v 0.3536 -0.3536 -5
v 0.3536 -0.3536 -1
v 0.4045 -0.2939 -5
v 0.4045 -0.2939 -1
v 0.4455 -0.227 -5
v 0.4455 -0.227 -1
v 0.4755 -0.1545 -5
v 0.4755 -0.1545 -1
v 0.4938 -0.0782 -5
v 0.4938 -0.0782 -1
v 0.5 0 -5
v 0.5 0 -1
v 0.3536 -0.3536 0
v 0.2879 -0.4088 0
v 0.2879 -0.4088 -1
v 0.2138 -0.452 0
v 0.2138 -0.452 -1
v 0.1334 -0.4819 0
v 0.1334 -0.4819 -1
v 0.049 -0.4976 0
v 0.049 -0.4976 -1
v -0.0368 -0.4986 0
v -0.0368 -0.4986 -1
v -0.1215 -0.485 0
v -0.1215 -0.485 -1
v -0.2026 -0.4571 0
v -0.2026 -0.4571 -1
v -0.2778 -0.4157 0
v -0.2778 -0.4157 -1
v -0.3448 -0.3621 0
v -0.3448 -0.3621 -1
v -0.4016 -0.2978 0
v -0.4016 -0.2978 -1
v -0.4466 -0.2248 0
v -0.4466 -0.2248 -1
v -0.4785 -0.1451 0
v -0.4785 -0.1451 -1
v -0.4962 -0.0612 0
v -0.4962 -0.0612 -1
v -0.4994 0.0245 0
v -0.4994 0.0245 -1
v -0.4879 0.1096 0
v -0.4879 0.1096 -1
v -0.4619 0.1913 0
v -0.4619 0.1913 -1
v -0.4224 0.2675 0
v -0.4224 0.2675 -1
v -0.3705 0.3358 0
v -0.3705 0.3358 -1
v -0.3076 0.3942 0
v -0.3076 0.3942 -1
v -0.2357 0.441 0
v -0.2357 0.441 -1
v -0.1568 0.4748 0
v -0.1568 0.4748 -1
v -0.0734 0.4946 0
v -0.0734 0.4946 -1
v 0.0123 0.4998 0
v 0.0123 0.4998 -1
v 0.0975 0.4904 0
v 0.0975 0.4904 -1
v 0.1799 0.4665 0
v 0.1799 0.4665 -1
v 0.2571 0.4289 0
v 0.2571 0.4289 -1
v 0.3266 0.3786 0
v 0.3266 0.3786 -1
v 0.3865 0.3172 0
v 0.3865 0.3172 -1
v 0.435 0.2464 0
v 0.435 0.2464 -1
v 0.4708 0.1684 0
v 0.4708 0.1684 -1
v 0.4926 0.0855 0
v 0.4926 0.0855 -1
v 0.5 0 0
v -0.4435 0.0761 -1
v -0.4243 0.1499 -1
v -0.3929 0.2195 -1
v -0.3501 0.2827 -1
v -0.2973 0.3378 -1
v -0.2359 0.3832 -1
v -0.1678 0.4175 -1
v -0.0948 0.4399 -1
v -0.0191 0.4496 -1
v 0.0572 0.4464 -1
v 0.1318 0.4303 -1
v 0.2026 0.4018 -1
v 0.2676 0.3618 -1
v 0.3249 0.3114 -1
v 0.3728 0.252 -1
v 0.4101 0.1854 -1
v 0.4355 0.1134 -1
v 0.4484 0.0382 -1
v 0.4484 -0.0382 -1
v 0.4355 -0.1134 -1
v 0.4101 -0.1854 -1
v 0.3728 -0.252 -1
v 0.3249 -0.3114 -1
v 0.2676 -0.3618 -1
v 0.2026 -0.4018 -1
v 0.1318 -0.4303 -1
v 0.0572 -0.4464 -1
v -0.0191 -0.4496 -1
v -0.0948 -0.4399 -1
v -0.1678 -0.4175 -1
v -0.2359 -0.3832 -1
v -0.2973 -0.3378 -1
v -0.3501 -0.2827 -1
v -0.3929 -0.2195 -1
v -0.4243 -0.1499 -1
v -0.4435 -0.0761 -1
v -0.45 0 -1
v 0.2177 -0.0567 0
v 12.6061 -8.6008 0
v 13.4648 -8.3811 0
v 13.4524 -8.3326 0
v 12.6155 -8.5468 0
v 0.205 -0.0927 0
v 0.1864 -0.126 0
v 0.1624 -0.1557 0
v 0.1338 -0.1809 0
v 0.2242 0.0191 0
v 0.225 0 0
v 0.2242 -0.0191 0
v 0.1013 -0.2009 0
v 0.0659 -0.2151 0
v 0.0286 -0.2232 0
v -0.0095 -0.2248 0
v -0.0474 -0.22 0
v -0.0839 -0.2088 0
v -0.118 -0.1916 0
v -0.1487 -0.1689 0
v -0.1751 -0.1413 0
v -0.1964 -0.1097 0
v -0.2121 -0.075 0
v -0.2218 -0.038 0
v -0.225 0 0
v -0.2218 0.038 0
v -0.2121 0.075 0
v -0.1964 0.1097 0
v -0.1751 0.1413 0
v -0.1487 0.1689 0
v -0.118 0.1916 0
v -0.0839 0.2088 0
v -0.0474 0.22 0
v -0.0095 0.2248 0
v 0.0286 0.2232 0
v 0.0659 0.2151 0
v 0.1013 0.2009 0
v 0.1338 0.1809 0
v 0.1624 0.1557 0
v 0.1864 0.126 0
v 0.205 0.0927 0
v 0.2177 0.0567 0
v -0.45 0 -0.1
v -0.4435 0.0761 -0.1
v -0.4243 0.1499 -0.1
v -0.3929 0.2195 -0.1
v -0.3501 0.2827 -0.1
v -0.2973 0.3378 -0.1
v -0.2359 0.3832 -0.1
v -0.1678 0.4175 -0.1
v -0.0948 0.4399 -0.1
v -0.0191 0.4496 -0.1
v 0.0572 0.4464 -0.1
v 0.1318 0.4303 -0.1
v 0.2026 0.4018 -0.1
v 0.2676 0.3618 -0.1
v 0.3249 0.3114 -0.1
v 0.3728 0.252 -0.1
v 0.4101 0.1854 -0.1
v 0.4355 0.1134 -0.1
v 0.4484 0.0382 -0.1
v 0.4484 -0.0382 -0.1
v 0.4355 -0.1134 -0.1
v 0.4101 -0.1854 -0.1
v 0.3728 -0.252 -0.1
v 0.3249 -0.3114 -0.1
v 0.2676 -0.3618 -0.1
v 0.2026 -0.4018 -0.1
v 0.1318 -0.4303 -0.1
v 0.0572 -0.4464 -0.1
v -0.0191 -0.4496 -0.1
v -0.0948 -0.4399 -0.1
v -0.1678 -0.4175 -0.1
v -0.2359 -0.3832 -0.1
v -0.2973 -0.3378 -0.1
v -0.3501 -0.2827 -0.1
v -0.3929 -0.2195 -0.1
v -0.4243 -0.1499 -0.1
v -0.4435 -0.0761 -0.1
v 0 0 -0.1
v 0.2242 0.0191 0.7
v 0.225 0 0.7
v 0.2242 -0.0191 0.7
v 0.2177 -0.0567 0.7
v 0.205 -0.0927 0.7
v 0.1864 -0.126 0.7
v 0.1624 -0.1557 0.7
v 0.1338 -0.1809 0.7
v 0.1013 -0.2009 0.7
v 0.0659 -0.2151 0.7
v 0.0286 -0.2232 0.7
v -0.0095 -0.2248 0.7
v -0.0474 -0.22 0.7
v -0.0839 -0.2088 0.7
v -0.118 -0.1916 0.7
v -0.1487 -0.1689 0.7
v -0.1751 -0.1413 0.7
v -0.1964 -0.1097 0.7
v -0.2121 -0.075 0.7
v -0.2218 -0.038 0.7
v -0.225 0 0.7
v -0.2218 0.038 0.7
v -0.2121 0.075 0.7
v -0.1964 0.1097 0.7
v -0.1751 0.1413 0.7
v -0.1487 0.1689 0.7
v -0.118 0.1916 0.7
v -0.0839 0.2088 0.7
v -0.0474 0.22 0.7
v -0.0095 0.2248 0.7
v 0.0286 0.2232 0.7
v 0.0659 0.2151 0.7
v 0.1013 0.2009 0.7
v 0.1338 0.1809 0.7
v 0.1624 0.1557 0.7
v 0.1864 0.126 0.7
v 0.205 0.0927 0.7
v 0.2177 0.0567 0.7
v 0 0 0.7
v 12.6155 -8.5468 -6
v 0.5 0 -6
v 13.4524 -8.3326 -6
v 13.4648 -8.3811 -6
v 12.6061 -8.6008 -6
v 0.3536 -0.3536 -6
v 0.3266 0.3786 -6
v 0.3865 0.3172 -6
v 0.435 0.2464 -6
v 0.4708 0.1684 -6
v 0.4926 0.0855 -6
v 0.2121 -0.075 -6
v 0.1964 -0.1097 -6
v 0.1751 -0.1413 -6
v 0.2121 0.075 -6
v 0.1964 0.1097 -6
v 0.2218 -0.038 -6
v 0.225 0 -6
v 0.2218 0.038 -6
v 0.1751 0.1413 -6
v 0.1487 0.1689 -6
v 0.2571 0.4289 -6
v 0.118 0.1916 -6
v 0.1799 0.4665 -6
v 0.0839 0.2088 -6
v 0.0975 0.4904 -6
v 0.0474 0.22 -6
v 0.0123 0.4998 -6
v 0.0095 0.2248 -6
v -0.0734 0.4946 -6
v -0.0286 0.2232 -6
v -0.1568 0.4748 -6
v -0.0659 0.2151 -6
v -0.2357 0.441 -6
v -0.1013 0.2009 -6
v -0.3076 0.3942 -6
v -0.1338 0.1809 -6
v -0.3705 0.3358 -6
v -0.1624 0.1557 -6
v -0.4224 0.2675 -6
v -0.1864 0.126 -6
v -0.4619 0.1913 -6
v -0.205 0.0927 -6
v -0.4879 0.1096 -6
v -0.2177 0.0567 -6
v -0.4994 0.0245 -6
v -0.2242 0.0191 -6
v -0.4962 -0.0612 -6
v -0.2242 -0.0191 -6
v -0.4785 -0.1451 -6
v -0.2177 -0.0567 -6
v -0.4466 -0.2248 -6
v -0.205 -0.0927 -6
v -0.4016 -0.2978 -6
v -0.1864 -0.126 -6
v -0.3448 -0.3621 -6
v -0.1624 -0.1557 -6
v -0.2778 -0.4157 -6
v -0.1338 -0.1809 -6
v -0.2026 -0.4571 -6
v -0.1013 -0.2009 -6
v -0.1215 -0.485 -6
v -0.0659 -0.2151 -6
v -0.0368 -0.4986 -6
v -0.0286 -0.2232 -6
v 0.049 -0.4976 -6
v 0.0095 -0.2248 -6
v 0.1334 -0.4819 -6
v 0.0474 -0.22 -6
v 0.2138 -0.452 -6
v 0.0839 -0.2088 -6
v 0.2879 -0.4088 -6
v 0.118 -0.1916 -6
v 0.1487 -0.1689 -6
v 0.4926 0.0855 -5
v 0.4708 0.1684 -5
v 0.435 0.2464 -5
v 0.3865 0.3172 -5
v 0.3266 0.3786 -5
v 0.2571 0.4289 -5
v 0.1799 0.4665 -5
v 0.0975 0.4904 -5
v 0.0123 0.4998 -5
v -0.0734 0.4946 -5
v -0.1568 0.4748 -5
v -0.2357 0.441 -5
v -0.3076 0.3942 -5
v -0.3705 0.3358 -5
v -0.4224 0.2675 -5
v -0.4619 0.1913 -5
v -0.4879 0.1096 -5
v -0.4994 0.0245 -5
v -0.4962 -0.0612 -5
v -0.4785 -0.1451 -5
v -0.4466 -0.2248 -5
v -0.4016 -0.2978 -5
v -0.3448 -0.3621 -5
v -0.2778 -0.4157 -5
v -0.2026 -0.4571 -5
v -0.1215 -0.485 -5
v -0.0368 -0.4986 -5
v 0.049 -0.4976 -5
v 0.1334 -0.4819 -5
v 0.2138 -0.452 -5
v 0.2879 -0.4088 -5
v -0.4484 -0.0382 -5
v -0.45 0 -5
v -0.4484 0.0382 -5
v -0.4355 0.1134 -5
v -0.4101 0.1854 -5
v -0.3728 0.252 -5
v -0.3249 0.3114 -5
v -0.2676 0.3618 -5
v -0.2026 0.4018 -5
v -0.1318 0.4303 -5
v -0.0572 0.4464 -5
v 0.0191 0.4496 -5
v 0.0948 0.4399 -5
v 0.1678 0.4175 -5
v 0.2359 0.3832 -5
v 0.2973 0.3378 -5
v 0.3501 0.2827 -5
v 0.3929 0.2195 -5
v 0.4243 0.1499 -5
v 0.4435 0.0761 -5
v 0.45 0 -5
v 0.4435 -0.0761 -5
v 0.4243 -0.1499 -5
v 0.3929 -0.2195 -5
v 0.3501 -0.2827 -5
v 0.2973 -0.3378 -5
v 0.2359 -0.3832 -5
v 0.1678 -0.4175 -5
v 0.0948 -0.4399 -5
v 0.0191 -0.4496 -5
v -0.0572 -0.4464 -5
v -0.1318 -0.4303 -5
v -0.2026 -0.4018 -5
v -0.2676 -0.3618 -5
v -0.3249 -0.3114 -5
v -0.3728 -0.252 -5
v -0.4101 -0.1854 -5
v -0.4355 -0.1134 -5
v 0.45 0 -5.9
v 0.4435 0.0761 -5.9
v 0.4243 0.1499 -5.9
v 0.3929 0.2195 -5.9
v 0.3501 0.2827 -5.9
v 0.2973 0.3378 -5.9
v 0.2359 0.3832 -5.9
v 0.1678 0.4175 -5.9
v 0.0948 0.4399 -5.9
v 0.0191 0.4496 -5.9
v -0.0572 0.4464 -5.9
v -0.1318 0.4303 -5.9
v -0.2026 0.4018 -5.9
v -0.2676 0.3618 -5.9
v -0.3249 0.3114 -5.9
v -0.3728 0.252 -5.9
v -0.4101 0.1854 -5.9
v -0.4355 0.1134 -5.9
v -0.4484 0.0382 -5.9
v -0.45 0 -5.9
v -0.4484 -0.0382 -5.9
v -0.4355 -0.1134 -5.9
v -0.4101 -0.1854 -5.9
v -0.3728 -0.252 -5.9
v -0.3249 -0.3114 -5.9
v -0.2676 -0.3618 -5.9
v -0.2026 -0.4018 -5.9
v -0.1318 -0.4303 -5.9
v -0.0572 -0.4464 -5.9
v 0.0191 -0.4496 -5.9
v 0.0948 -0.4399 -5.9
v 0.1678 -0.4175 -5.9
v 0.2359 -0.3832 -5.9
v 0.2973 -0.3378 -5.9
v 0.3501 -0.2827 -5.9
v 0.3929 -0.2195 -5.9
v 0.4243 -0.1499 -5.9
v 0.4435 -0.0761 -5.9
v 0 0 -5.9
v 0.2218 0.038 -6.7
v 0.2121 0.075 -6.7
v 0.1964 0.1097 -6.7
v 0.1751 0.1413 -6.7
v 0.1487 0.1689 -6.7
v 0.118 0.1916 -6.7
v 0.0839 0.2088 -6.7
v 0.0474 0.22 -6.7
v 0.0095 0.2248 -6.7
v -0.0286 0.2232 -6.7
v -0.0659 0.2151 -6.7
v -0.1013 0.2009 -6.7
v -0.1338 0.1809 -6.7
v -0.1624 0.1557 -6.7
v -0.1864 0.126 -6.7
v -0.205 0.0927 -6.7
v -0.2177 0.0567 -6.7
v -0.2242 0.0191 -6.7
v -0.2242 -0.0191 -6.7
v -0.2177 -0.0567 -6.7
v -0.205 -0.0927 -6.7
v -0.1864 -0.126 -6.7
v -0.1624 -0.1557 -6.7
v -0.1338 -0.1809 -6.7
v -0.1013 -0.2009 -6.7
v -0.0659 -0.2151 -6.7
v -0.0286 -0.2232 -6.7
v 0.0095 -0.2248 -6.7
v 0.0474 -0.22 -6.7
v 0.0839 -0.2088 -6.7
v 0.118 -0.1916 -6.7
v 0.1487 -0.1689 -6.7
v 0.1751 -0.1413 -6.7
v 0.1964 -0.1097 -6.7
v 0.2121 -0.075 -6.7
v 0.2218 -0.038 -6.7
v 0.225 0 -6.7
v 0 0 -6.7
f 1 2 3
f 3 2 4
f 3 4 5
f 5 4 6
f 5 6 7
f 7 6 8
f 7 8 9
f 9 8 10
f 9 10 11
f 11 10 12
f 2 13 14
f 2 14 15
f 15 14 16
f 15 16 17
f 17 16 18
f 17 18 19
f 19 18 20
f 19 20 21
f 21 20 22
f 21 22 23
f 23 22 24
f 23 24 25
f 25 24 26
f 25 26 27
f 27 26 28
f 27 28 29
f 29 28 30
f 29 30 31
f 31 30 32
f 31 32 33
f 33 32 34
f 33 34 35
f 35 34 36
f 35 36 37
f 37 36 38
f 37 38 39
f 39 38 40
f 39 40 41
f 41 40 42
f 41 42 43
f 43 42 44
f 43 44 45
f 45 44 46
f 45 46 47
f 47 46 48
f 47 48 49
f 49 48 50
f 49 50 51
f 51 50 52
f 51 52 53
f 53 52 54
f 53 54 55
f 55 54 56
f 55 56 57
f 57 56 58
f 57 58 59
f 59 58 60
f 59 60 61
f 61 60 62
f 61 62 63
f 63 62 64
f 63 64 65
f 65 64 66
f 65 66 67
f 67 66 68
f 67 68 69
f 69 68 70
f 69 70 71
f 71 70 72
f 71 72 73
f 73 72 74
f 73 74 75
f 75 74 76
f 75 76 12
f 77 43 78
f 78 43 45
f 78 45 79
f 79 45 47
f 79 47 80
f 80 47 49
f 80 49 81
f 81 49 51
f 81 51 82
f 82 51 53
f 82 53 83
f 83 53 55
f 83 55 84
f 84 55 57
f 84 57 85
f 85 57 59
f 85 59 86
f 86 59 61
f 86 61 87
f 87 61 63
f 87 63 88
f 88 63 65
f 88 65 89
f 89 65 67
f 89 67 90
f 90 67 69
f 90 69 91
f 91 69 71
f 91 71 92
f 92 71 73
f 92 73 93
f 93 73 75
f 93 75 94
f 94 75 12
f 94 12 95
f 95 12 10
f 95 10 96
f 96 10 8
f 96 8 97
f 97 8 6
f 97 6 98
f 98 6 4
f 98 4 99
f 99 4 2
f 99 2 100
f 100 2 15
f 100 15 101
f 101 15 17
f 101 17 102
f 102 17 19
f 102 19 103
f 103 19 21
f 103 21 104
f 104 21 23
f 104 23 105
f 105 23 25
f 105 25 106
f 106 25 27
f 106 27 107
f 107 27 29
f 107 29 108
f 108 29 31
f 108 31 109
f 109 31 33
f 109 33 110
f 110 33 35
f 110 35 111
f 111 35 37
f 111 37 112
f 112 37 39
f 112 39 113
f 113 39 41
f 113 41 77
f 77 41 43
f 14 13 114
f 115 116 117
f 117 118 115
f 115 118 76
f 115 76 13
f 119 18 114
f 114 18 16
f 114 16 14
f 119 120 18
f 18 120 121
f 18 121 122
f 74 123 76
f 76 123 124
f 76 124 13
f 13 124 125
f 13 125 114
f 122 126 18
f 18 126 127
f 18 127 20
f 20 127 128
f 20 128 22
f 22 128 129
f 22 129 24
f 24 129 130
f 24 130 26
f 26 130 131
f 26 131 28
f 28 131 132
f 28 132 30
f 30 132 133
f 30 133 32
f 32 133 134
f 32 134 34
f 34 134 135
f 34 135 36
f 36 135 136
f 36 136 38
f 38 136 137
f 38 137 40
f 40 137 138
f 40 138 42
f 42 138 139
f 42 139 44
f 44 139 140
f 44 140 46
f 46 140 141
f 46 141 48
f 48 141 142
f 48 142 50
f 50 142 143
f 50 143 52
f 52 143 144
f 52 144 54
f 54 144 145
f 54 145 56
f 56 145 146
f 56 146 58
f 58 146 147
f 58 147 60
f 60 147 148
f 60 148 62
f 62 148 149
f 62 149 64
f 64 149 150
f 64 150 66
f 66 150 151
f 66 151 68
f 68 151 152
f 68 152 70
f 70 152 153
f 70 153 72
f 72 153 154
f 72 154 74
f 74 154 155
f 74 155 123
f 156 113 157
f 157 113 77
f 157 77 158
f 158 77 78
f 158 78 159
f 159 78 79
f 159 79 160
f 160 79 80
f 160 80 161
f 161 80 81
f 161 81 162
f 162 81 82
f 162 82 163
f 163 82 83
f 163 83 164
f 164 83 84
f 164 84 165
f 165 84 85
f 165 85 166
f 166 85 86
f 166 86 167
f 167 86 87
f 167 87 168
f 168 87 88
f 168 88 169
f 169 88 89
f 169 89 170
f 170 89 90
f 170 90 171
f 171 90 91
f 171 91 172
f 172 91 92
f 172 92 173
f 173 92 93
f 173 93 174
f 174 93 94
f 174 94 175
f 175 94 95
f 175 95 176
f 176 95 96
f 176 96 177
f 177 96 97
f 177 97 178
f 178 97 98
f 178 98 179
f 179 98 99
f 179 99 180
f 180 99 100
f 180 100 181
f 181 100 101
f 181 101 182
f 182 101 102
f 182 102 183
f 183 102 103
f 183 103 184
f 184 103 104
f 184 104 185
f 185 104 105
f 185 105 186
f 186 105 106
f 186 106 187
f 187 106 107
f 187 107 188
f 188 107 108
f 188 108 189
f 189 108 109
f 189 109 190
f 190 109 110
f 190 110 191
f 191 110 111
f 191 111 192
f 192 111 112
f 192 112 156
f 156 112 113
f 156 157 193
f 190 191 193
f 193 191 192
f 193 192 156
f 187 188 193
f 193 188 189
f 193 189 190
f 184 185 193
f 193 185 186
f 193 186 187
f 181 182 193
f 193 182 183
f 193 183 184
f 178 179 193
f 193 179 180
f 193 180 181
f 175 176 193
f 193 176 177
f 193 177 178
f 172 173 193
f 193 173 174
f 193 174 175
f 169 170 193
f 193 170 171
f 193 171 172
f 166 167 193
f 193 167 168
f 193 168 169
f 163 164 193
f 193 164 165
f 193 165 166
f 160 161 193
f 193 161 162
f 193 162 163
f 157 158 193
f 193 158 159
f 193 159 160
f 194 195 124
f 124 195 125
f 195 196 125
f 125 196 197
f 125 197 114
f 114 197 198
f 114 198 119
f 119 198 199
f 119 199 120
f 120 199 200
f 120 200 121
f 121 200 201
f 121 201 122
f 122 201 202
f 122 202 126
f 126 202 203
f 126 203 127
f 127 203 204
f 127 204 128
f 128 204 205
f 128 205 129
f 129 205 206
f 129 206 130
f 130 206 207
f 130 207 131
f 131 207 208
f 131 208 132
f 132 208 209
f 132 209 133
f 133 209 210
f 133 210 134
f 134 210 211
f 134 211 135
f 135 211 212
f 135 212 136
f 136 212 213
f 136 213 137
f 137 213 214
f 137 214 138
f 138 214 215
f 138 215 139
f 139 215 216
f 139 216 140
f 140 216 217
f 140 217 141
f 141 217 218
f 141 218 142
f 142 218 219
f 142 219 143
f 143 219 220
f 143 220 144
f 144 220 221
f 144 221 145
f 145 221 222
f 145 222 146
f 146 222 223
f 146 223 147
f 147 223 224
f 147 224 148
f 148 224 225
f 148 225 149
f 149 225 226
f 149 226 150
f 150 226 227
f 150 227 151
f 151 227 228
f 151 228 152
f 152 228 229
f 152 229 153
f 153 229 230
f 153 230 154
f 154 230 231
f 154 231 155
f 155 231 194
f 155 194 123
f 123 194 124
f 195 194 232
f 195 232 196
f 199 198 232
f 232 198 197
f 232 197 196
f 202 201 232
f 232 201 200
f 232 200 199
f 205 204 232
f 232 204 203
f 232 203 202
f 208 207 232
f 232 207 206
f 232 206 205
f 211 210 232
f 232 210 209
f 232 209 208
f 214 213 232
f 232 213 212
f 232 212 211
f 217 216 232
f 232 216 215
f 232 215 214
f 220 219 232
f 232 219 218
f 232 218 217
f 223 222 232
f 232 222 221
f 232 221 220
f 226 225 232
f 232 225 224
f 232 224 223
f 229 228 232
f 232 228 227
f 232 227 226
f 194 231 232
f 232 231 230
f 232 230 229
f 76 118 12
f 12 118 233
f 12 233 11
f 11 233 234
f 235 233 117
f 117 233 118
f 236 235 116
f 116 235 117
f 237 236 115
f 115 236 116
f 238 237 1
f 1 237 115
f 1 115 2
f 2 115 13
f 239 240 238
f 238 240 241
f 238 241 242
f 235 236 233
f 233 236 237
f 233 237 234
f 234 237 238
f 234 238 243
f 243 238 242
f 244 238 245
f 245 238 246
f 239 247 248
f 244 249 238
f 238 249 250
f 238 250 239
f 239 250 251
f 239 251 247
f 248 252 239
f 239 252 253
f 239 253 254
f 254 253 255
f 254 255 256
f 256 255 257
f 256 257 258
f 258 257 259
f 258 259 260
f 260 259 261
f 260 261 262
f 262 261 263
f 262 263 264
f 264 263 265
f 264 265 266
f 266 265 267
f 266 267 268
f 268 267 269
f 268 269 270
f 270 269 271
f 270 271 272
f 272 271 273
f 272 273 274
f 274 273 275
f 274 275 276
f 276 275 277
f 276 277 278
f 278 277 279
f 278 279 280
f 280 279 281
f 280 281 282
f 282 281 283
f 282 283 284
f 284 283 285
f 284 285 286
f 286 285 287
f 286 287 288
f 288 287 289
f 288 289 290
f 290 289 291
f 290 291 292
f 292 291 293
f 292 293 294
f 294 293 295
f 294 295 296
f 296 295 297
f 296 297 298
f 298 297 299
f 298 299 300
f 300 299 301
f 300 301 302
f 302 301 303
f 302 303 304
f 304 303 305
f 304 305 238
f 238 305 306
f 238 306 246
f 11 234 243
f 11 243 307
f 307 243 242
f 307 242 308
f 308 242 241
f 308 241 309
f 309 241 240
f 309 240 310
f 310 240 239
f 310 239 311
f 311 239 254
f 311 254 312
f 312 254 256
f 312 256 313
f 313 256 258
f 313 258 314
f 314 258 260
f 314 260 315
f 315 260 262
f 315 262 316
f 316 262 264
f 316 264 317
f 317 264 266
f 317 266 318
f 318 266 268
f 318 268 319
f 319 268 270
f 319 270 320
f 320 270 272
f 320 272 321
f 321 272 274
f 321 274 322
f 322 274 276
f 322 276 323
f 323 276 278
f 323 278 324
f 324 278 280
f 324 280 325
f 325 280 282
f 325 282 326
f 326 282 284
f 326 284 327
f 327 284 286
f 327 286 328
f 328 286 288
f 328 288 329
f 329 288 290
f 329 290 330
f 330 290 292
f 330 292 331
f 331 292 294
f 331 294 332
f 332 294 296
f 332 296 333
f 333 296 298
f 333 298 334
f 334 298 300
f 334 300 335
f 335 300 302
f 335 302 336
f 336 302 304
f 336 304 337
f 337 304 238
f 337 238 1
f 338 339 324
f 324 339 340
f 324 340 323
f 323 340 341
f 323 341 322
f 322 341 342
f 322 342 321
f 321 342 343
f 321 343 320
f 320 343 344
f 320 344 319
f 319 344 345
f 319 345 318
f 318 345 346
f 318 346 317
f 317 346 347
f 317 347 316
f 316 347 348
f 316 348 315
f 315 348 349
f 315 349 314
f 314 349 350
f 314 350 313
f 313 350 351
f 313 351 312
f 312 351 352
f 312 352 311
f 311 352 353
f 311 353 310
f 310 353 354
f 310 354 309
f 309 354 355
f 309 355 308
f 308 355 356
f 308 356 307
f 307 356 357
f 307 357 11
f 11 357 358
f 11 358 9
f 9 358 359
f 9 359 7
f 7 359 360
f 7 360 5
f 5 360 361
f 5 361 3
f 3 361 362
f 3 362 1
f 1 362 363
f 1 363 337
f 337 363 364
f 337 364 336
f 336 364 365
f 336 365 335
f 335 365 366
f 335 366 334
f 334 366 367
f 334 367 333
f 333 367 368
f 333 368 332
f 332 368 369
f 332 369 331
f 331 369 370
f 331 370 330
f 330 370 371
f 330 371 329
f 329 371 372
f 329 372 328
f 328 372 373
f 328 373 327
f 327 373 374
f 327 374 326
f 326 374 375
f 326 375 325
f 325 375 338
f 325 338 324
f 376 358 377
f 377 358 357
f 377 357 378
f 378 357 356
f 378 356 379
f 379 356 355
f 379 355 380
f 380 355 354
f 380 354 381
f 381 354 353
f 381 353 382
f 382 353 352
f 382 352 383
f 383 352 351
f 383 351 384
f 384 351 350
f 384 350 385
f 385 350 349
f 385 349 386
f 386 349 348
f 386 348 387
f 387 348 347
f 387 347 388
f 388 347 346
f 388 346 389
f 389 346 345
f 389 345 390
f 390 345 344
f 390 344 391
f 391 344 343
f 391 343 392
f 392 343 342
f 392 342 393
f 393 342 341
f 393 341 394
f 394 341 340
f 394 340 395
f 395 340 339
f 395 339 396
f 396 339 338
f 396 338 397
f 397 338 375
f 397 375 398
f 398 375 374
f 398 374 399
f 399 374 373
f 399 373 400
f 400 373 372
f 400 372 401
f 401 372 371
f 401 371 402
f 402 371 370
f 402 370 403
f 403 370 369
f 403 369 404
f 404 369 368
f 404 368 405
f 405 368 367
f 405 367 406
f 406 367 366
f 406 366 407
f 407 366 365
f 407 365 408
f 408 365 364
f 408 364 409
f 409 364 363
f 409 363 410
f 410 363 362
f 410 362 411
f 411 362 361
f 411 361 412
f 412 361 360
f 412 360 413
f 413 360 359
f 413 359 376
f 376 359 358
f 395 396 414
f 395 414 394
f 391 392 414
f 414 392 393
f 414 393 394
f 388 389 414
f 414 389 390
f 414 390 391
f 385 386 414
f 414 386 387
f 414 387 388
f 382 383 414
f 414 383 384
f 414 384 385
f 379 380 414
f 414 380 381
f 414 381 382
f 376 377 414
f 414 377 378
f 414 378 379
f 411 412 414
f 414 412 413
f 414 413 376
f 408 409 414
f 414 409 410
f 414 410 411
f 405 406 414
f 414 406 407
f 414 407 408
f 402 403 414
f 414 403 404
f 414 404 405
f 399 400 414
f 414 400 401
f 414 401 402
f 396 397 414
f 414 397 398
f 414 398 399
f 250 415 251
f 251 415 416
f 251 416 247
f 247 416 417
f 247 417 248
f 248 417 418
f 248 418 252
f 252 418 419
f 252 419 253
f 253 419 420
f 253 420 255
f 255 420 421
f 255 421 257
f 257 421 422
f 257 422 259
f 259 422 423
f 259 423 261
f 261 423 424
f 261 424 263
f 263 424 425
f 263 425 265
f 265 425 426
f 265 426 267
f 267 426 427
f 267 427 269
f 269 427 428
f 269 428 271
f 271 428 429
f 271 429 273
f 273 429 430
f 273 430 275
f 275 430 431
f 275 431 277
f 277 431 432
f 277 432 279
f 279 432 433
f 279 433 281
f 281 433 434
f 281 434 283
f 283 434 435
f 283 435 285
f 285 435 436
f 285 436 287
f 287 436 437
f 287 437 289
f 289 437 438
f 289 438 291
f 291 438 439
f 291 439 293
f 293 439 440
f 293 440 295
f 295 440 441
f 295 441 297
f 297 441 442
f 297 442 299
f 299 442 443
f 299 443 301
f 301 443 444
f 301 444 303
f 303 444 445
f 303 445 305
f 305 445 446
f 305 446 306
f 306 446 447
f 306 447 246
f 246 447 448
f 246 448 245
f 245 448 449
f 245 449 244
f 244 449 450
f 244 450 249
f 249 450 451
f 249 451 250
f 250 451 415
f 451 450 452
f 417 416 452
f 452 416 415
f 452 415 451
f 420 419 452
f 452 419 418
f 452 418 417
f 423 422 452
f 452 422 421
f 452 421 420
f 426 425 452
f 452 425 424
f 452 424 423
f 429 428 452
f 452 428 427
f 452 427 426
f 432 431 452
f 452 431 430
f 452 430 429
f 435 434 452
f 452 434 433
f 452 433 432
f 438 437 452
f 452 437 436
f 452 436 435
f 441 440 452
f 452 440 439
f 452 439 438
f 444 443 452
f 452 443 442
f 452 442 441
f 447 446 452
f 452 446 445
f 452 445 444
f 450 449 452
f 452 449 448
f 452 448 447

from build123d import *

# Parameters (mm, degrees)
SKETCH1_R           = 0.5
BOSS_EXTRUDE1_DEPTH = 1
SKETCH2_R           = 0.45
CUT_EXTRUDE1_DEPTH  = 0.9
SKETCH3_R           = 0.225
BOSS_EXTRUDE2_DEPTH = 0.7
BOSS_EXTRUDE3_DEPTH = 6


with BuildPart() as part:
    # Sketch1 → Boss-Extrude1 (new body)
    with BuildSketch(Plane.XY):
        Circle(SKETCH1_R)
    boss_extrude1 = extrude(amount=-BOSS_EXTRUDE1_DEPTH)

    # Sketch2 → Cut-Extrude1 (cut)
    with BuildSketch(Plane(origin=(0, 0, -1), x_dir=(-1, 0, 0), z_dir=(0, 0, -1))):
        Circle(SKETCH2_R)
    cut_extrude1 = extrude(amount=-CUT_EXTRUDE1_DEPTH, mode=Mode.SUBTRACT)

    # Sketch3 → Boss-Extrude2 (add)
    with BuildSketch(Plane.XY):
        Circle(SKETCH3_R)
    boss_extrude2 = extrude(amount=BOSS_EXTRUDE2_DEPTH)

    # Sketch4 → Boss-Extrude3 (add)
    with BuildSketch(Plane.XY):
        with BuildLine():
            Line((12.615455291, -8.546775908), (0.5, 0))
            ThreePointArc((0.5, 0), (0.461939766, -0.191341716), (0.353553391, -0.353553391))
            Line((0.353553391, -0.353553391), (12.606131889, -8.600771882))
            Line((12.606131889, -8.600771882), (13.464797628, -8.38108067))
            Line((13.464797628, -8.38108067), (13.452404243, -8.332640975))
            Line((13.452404243, -8.332640975), (12.615455291, -8.546775908))
        make_face()
    extrude(amount=-BOSS_EXTRUDE3_DEPTH)

    # Mirror1: Boss-Extrude1, Cut-Extrude1, Boss-Extrude2 across plane
    add(boss_extrude1.mirror(Plane.XY.offset(-3)))
    add(cut_extrude1.mirror(Plane.XY.offset(-3)), mode=Mode.SUBTRACT)
    add(boss_extrude2.mirror(Plane.XY.offset(-3)))


solid = part.part
